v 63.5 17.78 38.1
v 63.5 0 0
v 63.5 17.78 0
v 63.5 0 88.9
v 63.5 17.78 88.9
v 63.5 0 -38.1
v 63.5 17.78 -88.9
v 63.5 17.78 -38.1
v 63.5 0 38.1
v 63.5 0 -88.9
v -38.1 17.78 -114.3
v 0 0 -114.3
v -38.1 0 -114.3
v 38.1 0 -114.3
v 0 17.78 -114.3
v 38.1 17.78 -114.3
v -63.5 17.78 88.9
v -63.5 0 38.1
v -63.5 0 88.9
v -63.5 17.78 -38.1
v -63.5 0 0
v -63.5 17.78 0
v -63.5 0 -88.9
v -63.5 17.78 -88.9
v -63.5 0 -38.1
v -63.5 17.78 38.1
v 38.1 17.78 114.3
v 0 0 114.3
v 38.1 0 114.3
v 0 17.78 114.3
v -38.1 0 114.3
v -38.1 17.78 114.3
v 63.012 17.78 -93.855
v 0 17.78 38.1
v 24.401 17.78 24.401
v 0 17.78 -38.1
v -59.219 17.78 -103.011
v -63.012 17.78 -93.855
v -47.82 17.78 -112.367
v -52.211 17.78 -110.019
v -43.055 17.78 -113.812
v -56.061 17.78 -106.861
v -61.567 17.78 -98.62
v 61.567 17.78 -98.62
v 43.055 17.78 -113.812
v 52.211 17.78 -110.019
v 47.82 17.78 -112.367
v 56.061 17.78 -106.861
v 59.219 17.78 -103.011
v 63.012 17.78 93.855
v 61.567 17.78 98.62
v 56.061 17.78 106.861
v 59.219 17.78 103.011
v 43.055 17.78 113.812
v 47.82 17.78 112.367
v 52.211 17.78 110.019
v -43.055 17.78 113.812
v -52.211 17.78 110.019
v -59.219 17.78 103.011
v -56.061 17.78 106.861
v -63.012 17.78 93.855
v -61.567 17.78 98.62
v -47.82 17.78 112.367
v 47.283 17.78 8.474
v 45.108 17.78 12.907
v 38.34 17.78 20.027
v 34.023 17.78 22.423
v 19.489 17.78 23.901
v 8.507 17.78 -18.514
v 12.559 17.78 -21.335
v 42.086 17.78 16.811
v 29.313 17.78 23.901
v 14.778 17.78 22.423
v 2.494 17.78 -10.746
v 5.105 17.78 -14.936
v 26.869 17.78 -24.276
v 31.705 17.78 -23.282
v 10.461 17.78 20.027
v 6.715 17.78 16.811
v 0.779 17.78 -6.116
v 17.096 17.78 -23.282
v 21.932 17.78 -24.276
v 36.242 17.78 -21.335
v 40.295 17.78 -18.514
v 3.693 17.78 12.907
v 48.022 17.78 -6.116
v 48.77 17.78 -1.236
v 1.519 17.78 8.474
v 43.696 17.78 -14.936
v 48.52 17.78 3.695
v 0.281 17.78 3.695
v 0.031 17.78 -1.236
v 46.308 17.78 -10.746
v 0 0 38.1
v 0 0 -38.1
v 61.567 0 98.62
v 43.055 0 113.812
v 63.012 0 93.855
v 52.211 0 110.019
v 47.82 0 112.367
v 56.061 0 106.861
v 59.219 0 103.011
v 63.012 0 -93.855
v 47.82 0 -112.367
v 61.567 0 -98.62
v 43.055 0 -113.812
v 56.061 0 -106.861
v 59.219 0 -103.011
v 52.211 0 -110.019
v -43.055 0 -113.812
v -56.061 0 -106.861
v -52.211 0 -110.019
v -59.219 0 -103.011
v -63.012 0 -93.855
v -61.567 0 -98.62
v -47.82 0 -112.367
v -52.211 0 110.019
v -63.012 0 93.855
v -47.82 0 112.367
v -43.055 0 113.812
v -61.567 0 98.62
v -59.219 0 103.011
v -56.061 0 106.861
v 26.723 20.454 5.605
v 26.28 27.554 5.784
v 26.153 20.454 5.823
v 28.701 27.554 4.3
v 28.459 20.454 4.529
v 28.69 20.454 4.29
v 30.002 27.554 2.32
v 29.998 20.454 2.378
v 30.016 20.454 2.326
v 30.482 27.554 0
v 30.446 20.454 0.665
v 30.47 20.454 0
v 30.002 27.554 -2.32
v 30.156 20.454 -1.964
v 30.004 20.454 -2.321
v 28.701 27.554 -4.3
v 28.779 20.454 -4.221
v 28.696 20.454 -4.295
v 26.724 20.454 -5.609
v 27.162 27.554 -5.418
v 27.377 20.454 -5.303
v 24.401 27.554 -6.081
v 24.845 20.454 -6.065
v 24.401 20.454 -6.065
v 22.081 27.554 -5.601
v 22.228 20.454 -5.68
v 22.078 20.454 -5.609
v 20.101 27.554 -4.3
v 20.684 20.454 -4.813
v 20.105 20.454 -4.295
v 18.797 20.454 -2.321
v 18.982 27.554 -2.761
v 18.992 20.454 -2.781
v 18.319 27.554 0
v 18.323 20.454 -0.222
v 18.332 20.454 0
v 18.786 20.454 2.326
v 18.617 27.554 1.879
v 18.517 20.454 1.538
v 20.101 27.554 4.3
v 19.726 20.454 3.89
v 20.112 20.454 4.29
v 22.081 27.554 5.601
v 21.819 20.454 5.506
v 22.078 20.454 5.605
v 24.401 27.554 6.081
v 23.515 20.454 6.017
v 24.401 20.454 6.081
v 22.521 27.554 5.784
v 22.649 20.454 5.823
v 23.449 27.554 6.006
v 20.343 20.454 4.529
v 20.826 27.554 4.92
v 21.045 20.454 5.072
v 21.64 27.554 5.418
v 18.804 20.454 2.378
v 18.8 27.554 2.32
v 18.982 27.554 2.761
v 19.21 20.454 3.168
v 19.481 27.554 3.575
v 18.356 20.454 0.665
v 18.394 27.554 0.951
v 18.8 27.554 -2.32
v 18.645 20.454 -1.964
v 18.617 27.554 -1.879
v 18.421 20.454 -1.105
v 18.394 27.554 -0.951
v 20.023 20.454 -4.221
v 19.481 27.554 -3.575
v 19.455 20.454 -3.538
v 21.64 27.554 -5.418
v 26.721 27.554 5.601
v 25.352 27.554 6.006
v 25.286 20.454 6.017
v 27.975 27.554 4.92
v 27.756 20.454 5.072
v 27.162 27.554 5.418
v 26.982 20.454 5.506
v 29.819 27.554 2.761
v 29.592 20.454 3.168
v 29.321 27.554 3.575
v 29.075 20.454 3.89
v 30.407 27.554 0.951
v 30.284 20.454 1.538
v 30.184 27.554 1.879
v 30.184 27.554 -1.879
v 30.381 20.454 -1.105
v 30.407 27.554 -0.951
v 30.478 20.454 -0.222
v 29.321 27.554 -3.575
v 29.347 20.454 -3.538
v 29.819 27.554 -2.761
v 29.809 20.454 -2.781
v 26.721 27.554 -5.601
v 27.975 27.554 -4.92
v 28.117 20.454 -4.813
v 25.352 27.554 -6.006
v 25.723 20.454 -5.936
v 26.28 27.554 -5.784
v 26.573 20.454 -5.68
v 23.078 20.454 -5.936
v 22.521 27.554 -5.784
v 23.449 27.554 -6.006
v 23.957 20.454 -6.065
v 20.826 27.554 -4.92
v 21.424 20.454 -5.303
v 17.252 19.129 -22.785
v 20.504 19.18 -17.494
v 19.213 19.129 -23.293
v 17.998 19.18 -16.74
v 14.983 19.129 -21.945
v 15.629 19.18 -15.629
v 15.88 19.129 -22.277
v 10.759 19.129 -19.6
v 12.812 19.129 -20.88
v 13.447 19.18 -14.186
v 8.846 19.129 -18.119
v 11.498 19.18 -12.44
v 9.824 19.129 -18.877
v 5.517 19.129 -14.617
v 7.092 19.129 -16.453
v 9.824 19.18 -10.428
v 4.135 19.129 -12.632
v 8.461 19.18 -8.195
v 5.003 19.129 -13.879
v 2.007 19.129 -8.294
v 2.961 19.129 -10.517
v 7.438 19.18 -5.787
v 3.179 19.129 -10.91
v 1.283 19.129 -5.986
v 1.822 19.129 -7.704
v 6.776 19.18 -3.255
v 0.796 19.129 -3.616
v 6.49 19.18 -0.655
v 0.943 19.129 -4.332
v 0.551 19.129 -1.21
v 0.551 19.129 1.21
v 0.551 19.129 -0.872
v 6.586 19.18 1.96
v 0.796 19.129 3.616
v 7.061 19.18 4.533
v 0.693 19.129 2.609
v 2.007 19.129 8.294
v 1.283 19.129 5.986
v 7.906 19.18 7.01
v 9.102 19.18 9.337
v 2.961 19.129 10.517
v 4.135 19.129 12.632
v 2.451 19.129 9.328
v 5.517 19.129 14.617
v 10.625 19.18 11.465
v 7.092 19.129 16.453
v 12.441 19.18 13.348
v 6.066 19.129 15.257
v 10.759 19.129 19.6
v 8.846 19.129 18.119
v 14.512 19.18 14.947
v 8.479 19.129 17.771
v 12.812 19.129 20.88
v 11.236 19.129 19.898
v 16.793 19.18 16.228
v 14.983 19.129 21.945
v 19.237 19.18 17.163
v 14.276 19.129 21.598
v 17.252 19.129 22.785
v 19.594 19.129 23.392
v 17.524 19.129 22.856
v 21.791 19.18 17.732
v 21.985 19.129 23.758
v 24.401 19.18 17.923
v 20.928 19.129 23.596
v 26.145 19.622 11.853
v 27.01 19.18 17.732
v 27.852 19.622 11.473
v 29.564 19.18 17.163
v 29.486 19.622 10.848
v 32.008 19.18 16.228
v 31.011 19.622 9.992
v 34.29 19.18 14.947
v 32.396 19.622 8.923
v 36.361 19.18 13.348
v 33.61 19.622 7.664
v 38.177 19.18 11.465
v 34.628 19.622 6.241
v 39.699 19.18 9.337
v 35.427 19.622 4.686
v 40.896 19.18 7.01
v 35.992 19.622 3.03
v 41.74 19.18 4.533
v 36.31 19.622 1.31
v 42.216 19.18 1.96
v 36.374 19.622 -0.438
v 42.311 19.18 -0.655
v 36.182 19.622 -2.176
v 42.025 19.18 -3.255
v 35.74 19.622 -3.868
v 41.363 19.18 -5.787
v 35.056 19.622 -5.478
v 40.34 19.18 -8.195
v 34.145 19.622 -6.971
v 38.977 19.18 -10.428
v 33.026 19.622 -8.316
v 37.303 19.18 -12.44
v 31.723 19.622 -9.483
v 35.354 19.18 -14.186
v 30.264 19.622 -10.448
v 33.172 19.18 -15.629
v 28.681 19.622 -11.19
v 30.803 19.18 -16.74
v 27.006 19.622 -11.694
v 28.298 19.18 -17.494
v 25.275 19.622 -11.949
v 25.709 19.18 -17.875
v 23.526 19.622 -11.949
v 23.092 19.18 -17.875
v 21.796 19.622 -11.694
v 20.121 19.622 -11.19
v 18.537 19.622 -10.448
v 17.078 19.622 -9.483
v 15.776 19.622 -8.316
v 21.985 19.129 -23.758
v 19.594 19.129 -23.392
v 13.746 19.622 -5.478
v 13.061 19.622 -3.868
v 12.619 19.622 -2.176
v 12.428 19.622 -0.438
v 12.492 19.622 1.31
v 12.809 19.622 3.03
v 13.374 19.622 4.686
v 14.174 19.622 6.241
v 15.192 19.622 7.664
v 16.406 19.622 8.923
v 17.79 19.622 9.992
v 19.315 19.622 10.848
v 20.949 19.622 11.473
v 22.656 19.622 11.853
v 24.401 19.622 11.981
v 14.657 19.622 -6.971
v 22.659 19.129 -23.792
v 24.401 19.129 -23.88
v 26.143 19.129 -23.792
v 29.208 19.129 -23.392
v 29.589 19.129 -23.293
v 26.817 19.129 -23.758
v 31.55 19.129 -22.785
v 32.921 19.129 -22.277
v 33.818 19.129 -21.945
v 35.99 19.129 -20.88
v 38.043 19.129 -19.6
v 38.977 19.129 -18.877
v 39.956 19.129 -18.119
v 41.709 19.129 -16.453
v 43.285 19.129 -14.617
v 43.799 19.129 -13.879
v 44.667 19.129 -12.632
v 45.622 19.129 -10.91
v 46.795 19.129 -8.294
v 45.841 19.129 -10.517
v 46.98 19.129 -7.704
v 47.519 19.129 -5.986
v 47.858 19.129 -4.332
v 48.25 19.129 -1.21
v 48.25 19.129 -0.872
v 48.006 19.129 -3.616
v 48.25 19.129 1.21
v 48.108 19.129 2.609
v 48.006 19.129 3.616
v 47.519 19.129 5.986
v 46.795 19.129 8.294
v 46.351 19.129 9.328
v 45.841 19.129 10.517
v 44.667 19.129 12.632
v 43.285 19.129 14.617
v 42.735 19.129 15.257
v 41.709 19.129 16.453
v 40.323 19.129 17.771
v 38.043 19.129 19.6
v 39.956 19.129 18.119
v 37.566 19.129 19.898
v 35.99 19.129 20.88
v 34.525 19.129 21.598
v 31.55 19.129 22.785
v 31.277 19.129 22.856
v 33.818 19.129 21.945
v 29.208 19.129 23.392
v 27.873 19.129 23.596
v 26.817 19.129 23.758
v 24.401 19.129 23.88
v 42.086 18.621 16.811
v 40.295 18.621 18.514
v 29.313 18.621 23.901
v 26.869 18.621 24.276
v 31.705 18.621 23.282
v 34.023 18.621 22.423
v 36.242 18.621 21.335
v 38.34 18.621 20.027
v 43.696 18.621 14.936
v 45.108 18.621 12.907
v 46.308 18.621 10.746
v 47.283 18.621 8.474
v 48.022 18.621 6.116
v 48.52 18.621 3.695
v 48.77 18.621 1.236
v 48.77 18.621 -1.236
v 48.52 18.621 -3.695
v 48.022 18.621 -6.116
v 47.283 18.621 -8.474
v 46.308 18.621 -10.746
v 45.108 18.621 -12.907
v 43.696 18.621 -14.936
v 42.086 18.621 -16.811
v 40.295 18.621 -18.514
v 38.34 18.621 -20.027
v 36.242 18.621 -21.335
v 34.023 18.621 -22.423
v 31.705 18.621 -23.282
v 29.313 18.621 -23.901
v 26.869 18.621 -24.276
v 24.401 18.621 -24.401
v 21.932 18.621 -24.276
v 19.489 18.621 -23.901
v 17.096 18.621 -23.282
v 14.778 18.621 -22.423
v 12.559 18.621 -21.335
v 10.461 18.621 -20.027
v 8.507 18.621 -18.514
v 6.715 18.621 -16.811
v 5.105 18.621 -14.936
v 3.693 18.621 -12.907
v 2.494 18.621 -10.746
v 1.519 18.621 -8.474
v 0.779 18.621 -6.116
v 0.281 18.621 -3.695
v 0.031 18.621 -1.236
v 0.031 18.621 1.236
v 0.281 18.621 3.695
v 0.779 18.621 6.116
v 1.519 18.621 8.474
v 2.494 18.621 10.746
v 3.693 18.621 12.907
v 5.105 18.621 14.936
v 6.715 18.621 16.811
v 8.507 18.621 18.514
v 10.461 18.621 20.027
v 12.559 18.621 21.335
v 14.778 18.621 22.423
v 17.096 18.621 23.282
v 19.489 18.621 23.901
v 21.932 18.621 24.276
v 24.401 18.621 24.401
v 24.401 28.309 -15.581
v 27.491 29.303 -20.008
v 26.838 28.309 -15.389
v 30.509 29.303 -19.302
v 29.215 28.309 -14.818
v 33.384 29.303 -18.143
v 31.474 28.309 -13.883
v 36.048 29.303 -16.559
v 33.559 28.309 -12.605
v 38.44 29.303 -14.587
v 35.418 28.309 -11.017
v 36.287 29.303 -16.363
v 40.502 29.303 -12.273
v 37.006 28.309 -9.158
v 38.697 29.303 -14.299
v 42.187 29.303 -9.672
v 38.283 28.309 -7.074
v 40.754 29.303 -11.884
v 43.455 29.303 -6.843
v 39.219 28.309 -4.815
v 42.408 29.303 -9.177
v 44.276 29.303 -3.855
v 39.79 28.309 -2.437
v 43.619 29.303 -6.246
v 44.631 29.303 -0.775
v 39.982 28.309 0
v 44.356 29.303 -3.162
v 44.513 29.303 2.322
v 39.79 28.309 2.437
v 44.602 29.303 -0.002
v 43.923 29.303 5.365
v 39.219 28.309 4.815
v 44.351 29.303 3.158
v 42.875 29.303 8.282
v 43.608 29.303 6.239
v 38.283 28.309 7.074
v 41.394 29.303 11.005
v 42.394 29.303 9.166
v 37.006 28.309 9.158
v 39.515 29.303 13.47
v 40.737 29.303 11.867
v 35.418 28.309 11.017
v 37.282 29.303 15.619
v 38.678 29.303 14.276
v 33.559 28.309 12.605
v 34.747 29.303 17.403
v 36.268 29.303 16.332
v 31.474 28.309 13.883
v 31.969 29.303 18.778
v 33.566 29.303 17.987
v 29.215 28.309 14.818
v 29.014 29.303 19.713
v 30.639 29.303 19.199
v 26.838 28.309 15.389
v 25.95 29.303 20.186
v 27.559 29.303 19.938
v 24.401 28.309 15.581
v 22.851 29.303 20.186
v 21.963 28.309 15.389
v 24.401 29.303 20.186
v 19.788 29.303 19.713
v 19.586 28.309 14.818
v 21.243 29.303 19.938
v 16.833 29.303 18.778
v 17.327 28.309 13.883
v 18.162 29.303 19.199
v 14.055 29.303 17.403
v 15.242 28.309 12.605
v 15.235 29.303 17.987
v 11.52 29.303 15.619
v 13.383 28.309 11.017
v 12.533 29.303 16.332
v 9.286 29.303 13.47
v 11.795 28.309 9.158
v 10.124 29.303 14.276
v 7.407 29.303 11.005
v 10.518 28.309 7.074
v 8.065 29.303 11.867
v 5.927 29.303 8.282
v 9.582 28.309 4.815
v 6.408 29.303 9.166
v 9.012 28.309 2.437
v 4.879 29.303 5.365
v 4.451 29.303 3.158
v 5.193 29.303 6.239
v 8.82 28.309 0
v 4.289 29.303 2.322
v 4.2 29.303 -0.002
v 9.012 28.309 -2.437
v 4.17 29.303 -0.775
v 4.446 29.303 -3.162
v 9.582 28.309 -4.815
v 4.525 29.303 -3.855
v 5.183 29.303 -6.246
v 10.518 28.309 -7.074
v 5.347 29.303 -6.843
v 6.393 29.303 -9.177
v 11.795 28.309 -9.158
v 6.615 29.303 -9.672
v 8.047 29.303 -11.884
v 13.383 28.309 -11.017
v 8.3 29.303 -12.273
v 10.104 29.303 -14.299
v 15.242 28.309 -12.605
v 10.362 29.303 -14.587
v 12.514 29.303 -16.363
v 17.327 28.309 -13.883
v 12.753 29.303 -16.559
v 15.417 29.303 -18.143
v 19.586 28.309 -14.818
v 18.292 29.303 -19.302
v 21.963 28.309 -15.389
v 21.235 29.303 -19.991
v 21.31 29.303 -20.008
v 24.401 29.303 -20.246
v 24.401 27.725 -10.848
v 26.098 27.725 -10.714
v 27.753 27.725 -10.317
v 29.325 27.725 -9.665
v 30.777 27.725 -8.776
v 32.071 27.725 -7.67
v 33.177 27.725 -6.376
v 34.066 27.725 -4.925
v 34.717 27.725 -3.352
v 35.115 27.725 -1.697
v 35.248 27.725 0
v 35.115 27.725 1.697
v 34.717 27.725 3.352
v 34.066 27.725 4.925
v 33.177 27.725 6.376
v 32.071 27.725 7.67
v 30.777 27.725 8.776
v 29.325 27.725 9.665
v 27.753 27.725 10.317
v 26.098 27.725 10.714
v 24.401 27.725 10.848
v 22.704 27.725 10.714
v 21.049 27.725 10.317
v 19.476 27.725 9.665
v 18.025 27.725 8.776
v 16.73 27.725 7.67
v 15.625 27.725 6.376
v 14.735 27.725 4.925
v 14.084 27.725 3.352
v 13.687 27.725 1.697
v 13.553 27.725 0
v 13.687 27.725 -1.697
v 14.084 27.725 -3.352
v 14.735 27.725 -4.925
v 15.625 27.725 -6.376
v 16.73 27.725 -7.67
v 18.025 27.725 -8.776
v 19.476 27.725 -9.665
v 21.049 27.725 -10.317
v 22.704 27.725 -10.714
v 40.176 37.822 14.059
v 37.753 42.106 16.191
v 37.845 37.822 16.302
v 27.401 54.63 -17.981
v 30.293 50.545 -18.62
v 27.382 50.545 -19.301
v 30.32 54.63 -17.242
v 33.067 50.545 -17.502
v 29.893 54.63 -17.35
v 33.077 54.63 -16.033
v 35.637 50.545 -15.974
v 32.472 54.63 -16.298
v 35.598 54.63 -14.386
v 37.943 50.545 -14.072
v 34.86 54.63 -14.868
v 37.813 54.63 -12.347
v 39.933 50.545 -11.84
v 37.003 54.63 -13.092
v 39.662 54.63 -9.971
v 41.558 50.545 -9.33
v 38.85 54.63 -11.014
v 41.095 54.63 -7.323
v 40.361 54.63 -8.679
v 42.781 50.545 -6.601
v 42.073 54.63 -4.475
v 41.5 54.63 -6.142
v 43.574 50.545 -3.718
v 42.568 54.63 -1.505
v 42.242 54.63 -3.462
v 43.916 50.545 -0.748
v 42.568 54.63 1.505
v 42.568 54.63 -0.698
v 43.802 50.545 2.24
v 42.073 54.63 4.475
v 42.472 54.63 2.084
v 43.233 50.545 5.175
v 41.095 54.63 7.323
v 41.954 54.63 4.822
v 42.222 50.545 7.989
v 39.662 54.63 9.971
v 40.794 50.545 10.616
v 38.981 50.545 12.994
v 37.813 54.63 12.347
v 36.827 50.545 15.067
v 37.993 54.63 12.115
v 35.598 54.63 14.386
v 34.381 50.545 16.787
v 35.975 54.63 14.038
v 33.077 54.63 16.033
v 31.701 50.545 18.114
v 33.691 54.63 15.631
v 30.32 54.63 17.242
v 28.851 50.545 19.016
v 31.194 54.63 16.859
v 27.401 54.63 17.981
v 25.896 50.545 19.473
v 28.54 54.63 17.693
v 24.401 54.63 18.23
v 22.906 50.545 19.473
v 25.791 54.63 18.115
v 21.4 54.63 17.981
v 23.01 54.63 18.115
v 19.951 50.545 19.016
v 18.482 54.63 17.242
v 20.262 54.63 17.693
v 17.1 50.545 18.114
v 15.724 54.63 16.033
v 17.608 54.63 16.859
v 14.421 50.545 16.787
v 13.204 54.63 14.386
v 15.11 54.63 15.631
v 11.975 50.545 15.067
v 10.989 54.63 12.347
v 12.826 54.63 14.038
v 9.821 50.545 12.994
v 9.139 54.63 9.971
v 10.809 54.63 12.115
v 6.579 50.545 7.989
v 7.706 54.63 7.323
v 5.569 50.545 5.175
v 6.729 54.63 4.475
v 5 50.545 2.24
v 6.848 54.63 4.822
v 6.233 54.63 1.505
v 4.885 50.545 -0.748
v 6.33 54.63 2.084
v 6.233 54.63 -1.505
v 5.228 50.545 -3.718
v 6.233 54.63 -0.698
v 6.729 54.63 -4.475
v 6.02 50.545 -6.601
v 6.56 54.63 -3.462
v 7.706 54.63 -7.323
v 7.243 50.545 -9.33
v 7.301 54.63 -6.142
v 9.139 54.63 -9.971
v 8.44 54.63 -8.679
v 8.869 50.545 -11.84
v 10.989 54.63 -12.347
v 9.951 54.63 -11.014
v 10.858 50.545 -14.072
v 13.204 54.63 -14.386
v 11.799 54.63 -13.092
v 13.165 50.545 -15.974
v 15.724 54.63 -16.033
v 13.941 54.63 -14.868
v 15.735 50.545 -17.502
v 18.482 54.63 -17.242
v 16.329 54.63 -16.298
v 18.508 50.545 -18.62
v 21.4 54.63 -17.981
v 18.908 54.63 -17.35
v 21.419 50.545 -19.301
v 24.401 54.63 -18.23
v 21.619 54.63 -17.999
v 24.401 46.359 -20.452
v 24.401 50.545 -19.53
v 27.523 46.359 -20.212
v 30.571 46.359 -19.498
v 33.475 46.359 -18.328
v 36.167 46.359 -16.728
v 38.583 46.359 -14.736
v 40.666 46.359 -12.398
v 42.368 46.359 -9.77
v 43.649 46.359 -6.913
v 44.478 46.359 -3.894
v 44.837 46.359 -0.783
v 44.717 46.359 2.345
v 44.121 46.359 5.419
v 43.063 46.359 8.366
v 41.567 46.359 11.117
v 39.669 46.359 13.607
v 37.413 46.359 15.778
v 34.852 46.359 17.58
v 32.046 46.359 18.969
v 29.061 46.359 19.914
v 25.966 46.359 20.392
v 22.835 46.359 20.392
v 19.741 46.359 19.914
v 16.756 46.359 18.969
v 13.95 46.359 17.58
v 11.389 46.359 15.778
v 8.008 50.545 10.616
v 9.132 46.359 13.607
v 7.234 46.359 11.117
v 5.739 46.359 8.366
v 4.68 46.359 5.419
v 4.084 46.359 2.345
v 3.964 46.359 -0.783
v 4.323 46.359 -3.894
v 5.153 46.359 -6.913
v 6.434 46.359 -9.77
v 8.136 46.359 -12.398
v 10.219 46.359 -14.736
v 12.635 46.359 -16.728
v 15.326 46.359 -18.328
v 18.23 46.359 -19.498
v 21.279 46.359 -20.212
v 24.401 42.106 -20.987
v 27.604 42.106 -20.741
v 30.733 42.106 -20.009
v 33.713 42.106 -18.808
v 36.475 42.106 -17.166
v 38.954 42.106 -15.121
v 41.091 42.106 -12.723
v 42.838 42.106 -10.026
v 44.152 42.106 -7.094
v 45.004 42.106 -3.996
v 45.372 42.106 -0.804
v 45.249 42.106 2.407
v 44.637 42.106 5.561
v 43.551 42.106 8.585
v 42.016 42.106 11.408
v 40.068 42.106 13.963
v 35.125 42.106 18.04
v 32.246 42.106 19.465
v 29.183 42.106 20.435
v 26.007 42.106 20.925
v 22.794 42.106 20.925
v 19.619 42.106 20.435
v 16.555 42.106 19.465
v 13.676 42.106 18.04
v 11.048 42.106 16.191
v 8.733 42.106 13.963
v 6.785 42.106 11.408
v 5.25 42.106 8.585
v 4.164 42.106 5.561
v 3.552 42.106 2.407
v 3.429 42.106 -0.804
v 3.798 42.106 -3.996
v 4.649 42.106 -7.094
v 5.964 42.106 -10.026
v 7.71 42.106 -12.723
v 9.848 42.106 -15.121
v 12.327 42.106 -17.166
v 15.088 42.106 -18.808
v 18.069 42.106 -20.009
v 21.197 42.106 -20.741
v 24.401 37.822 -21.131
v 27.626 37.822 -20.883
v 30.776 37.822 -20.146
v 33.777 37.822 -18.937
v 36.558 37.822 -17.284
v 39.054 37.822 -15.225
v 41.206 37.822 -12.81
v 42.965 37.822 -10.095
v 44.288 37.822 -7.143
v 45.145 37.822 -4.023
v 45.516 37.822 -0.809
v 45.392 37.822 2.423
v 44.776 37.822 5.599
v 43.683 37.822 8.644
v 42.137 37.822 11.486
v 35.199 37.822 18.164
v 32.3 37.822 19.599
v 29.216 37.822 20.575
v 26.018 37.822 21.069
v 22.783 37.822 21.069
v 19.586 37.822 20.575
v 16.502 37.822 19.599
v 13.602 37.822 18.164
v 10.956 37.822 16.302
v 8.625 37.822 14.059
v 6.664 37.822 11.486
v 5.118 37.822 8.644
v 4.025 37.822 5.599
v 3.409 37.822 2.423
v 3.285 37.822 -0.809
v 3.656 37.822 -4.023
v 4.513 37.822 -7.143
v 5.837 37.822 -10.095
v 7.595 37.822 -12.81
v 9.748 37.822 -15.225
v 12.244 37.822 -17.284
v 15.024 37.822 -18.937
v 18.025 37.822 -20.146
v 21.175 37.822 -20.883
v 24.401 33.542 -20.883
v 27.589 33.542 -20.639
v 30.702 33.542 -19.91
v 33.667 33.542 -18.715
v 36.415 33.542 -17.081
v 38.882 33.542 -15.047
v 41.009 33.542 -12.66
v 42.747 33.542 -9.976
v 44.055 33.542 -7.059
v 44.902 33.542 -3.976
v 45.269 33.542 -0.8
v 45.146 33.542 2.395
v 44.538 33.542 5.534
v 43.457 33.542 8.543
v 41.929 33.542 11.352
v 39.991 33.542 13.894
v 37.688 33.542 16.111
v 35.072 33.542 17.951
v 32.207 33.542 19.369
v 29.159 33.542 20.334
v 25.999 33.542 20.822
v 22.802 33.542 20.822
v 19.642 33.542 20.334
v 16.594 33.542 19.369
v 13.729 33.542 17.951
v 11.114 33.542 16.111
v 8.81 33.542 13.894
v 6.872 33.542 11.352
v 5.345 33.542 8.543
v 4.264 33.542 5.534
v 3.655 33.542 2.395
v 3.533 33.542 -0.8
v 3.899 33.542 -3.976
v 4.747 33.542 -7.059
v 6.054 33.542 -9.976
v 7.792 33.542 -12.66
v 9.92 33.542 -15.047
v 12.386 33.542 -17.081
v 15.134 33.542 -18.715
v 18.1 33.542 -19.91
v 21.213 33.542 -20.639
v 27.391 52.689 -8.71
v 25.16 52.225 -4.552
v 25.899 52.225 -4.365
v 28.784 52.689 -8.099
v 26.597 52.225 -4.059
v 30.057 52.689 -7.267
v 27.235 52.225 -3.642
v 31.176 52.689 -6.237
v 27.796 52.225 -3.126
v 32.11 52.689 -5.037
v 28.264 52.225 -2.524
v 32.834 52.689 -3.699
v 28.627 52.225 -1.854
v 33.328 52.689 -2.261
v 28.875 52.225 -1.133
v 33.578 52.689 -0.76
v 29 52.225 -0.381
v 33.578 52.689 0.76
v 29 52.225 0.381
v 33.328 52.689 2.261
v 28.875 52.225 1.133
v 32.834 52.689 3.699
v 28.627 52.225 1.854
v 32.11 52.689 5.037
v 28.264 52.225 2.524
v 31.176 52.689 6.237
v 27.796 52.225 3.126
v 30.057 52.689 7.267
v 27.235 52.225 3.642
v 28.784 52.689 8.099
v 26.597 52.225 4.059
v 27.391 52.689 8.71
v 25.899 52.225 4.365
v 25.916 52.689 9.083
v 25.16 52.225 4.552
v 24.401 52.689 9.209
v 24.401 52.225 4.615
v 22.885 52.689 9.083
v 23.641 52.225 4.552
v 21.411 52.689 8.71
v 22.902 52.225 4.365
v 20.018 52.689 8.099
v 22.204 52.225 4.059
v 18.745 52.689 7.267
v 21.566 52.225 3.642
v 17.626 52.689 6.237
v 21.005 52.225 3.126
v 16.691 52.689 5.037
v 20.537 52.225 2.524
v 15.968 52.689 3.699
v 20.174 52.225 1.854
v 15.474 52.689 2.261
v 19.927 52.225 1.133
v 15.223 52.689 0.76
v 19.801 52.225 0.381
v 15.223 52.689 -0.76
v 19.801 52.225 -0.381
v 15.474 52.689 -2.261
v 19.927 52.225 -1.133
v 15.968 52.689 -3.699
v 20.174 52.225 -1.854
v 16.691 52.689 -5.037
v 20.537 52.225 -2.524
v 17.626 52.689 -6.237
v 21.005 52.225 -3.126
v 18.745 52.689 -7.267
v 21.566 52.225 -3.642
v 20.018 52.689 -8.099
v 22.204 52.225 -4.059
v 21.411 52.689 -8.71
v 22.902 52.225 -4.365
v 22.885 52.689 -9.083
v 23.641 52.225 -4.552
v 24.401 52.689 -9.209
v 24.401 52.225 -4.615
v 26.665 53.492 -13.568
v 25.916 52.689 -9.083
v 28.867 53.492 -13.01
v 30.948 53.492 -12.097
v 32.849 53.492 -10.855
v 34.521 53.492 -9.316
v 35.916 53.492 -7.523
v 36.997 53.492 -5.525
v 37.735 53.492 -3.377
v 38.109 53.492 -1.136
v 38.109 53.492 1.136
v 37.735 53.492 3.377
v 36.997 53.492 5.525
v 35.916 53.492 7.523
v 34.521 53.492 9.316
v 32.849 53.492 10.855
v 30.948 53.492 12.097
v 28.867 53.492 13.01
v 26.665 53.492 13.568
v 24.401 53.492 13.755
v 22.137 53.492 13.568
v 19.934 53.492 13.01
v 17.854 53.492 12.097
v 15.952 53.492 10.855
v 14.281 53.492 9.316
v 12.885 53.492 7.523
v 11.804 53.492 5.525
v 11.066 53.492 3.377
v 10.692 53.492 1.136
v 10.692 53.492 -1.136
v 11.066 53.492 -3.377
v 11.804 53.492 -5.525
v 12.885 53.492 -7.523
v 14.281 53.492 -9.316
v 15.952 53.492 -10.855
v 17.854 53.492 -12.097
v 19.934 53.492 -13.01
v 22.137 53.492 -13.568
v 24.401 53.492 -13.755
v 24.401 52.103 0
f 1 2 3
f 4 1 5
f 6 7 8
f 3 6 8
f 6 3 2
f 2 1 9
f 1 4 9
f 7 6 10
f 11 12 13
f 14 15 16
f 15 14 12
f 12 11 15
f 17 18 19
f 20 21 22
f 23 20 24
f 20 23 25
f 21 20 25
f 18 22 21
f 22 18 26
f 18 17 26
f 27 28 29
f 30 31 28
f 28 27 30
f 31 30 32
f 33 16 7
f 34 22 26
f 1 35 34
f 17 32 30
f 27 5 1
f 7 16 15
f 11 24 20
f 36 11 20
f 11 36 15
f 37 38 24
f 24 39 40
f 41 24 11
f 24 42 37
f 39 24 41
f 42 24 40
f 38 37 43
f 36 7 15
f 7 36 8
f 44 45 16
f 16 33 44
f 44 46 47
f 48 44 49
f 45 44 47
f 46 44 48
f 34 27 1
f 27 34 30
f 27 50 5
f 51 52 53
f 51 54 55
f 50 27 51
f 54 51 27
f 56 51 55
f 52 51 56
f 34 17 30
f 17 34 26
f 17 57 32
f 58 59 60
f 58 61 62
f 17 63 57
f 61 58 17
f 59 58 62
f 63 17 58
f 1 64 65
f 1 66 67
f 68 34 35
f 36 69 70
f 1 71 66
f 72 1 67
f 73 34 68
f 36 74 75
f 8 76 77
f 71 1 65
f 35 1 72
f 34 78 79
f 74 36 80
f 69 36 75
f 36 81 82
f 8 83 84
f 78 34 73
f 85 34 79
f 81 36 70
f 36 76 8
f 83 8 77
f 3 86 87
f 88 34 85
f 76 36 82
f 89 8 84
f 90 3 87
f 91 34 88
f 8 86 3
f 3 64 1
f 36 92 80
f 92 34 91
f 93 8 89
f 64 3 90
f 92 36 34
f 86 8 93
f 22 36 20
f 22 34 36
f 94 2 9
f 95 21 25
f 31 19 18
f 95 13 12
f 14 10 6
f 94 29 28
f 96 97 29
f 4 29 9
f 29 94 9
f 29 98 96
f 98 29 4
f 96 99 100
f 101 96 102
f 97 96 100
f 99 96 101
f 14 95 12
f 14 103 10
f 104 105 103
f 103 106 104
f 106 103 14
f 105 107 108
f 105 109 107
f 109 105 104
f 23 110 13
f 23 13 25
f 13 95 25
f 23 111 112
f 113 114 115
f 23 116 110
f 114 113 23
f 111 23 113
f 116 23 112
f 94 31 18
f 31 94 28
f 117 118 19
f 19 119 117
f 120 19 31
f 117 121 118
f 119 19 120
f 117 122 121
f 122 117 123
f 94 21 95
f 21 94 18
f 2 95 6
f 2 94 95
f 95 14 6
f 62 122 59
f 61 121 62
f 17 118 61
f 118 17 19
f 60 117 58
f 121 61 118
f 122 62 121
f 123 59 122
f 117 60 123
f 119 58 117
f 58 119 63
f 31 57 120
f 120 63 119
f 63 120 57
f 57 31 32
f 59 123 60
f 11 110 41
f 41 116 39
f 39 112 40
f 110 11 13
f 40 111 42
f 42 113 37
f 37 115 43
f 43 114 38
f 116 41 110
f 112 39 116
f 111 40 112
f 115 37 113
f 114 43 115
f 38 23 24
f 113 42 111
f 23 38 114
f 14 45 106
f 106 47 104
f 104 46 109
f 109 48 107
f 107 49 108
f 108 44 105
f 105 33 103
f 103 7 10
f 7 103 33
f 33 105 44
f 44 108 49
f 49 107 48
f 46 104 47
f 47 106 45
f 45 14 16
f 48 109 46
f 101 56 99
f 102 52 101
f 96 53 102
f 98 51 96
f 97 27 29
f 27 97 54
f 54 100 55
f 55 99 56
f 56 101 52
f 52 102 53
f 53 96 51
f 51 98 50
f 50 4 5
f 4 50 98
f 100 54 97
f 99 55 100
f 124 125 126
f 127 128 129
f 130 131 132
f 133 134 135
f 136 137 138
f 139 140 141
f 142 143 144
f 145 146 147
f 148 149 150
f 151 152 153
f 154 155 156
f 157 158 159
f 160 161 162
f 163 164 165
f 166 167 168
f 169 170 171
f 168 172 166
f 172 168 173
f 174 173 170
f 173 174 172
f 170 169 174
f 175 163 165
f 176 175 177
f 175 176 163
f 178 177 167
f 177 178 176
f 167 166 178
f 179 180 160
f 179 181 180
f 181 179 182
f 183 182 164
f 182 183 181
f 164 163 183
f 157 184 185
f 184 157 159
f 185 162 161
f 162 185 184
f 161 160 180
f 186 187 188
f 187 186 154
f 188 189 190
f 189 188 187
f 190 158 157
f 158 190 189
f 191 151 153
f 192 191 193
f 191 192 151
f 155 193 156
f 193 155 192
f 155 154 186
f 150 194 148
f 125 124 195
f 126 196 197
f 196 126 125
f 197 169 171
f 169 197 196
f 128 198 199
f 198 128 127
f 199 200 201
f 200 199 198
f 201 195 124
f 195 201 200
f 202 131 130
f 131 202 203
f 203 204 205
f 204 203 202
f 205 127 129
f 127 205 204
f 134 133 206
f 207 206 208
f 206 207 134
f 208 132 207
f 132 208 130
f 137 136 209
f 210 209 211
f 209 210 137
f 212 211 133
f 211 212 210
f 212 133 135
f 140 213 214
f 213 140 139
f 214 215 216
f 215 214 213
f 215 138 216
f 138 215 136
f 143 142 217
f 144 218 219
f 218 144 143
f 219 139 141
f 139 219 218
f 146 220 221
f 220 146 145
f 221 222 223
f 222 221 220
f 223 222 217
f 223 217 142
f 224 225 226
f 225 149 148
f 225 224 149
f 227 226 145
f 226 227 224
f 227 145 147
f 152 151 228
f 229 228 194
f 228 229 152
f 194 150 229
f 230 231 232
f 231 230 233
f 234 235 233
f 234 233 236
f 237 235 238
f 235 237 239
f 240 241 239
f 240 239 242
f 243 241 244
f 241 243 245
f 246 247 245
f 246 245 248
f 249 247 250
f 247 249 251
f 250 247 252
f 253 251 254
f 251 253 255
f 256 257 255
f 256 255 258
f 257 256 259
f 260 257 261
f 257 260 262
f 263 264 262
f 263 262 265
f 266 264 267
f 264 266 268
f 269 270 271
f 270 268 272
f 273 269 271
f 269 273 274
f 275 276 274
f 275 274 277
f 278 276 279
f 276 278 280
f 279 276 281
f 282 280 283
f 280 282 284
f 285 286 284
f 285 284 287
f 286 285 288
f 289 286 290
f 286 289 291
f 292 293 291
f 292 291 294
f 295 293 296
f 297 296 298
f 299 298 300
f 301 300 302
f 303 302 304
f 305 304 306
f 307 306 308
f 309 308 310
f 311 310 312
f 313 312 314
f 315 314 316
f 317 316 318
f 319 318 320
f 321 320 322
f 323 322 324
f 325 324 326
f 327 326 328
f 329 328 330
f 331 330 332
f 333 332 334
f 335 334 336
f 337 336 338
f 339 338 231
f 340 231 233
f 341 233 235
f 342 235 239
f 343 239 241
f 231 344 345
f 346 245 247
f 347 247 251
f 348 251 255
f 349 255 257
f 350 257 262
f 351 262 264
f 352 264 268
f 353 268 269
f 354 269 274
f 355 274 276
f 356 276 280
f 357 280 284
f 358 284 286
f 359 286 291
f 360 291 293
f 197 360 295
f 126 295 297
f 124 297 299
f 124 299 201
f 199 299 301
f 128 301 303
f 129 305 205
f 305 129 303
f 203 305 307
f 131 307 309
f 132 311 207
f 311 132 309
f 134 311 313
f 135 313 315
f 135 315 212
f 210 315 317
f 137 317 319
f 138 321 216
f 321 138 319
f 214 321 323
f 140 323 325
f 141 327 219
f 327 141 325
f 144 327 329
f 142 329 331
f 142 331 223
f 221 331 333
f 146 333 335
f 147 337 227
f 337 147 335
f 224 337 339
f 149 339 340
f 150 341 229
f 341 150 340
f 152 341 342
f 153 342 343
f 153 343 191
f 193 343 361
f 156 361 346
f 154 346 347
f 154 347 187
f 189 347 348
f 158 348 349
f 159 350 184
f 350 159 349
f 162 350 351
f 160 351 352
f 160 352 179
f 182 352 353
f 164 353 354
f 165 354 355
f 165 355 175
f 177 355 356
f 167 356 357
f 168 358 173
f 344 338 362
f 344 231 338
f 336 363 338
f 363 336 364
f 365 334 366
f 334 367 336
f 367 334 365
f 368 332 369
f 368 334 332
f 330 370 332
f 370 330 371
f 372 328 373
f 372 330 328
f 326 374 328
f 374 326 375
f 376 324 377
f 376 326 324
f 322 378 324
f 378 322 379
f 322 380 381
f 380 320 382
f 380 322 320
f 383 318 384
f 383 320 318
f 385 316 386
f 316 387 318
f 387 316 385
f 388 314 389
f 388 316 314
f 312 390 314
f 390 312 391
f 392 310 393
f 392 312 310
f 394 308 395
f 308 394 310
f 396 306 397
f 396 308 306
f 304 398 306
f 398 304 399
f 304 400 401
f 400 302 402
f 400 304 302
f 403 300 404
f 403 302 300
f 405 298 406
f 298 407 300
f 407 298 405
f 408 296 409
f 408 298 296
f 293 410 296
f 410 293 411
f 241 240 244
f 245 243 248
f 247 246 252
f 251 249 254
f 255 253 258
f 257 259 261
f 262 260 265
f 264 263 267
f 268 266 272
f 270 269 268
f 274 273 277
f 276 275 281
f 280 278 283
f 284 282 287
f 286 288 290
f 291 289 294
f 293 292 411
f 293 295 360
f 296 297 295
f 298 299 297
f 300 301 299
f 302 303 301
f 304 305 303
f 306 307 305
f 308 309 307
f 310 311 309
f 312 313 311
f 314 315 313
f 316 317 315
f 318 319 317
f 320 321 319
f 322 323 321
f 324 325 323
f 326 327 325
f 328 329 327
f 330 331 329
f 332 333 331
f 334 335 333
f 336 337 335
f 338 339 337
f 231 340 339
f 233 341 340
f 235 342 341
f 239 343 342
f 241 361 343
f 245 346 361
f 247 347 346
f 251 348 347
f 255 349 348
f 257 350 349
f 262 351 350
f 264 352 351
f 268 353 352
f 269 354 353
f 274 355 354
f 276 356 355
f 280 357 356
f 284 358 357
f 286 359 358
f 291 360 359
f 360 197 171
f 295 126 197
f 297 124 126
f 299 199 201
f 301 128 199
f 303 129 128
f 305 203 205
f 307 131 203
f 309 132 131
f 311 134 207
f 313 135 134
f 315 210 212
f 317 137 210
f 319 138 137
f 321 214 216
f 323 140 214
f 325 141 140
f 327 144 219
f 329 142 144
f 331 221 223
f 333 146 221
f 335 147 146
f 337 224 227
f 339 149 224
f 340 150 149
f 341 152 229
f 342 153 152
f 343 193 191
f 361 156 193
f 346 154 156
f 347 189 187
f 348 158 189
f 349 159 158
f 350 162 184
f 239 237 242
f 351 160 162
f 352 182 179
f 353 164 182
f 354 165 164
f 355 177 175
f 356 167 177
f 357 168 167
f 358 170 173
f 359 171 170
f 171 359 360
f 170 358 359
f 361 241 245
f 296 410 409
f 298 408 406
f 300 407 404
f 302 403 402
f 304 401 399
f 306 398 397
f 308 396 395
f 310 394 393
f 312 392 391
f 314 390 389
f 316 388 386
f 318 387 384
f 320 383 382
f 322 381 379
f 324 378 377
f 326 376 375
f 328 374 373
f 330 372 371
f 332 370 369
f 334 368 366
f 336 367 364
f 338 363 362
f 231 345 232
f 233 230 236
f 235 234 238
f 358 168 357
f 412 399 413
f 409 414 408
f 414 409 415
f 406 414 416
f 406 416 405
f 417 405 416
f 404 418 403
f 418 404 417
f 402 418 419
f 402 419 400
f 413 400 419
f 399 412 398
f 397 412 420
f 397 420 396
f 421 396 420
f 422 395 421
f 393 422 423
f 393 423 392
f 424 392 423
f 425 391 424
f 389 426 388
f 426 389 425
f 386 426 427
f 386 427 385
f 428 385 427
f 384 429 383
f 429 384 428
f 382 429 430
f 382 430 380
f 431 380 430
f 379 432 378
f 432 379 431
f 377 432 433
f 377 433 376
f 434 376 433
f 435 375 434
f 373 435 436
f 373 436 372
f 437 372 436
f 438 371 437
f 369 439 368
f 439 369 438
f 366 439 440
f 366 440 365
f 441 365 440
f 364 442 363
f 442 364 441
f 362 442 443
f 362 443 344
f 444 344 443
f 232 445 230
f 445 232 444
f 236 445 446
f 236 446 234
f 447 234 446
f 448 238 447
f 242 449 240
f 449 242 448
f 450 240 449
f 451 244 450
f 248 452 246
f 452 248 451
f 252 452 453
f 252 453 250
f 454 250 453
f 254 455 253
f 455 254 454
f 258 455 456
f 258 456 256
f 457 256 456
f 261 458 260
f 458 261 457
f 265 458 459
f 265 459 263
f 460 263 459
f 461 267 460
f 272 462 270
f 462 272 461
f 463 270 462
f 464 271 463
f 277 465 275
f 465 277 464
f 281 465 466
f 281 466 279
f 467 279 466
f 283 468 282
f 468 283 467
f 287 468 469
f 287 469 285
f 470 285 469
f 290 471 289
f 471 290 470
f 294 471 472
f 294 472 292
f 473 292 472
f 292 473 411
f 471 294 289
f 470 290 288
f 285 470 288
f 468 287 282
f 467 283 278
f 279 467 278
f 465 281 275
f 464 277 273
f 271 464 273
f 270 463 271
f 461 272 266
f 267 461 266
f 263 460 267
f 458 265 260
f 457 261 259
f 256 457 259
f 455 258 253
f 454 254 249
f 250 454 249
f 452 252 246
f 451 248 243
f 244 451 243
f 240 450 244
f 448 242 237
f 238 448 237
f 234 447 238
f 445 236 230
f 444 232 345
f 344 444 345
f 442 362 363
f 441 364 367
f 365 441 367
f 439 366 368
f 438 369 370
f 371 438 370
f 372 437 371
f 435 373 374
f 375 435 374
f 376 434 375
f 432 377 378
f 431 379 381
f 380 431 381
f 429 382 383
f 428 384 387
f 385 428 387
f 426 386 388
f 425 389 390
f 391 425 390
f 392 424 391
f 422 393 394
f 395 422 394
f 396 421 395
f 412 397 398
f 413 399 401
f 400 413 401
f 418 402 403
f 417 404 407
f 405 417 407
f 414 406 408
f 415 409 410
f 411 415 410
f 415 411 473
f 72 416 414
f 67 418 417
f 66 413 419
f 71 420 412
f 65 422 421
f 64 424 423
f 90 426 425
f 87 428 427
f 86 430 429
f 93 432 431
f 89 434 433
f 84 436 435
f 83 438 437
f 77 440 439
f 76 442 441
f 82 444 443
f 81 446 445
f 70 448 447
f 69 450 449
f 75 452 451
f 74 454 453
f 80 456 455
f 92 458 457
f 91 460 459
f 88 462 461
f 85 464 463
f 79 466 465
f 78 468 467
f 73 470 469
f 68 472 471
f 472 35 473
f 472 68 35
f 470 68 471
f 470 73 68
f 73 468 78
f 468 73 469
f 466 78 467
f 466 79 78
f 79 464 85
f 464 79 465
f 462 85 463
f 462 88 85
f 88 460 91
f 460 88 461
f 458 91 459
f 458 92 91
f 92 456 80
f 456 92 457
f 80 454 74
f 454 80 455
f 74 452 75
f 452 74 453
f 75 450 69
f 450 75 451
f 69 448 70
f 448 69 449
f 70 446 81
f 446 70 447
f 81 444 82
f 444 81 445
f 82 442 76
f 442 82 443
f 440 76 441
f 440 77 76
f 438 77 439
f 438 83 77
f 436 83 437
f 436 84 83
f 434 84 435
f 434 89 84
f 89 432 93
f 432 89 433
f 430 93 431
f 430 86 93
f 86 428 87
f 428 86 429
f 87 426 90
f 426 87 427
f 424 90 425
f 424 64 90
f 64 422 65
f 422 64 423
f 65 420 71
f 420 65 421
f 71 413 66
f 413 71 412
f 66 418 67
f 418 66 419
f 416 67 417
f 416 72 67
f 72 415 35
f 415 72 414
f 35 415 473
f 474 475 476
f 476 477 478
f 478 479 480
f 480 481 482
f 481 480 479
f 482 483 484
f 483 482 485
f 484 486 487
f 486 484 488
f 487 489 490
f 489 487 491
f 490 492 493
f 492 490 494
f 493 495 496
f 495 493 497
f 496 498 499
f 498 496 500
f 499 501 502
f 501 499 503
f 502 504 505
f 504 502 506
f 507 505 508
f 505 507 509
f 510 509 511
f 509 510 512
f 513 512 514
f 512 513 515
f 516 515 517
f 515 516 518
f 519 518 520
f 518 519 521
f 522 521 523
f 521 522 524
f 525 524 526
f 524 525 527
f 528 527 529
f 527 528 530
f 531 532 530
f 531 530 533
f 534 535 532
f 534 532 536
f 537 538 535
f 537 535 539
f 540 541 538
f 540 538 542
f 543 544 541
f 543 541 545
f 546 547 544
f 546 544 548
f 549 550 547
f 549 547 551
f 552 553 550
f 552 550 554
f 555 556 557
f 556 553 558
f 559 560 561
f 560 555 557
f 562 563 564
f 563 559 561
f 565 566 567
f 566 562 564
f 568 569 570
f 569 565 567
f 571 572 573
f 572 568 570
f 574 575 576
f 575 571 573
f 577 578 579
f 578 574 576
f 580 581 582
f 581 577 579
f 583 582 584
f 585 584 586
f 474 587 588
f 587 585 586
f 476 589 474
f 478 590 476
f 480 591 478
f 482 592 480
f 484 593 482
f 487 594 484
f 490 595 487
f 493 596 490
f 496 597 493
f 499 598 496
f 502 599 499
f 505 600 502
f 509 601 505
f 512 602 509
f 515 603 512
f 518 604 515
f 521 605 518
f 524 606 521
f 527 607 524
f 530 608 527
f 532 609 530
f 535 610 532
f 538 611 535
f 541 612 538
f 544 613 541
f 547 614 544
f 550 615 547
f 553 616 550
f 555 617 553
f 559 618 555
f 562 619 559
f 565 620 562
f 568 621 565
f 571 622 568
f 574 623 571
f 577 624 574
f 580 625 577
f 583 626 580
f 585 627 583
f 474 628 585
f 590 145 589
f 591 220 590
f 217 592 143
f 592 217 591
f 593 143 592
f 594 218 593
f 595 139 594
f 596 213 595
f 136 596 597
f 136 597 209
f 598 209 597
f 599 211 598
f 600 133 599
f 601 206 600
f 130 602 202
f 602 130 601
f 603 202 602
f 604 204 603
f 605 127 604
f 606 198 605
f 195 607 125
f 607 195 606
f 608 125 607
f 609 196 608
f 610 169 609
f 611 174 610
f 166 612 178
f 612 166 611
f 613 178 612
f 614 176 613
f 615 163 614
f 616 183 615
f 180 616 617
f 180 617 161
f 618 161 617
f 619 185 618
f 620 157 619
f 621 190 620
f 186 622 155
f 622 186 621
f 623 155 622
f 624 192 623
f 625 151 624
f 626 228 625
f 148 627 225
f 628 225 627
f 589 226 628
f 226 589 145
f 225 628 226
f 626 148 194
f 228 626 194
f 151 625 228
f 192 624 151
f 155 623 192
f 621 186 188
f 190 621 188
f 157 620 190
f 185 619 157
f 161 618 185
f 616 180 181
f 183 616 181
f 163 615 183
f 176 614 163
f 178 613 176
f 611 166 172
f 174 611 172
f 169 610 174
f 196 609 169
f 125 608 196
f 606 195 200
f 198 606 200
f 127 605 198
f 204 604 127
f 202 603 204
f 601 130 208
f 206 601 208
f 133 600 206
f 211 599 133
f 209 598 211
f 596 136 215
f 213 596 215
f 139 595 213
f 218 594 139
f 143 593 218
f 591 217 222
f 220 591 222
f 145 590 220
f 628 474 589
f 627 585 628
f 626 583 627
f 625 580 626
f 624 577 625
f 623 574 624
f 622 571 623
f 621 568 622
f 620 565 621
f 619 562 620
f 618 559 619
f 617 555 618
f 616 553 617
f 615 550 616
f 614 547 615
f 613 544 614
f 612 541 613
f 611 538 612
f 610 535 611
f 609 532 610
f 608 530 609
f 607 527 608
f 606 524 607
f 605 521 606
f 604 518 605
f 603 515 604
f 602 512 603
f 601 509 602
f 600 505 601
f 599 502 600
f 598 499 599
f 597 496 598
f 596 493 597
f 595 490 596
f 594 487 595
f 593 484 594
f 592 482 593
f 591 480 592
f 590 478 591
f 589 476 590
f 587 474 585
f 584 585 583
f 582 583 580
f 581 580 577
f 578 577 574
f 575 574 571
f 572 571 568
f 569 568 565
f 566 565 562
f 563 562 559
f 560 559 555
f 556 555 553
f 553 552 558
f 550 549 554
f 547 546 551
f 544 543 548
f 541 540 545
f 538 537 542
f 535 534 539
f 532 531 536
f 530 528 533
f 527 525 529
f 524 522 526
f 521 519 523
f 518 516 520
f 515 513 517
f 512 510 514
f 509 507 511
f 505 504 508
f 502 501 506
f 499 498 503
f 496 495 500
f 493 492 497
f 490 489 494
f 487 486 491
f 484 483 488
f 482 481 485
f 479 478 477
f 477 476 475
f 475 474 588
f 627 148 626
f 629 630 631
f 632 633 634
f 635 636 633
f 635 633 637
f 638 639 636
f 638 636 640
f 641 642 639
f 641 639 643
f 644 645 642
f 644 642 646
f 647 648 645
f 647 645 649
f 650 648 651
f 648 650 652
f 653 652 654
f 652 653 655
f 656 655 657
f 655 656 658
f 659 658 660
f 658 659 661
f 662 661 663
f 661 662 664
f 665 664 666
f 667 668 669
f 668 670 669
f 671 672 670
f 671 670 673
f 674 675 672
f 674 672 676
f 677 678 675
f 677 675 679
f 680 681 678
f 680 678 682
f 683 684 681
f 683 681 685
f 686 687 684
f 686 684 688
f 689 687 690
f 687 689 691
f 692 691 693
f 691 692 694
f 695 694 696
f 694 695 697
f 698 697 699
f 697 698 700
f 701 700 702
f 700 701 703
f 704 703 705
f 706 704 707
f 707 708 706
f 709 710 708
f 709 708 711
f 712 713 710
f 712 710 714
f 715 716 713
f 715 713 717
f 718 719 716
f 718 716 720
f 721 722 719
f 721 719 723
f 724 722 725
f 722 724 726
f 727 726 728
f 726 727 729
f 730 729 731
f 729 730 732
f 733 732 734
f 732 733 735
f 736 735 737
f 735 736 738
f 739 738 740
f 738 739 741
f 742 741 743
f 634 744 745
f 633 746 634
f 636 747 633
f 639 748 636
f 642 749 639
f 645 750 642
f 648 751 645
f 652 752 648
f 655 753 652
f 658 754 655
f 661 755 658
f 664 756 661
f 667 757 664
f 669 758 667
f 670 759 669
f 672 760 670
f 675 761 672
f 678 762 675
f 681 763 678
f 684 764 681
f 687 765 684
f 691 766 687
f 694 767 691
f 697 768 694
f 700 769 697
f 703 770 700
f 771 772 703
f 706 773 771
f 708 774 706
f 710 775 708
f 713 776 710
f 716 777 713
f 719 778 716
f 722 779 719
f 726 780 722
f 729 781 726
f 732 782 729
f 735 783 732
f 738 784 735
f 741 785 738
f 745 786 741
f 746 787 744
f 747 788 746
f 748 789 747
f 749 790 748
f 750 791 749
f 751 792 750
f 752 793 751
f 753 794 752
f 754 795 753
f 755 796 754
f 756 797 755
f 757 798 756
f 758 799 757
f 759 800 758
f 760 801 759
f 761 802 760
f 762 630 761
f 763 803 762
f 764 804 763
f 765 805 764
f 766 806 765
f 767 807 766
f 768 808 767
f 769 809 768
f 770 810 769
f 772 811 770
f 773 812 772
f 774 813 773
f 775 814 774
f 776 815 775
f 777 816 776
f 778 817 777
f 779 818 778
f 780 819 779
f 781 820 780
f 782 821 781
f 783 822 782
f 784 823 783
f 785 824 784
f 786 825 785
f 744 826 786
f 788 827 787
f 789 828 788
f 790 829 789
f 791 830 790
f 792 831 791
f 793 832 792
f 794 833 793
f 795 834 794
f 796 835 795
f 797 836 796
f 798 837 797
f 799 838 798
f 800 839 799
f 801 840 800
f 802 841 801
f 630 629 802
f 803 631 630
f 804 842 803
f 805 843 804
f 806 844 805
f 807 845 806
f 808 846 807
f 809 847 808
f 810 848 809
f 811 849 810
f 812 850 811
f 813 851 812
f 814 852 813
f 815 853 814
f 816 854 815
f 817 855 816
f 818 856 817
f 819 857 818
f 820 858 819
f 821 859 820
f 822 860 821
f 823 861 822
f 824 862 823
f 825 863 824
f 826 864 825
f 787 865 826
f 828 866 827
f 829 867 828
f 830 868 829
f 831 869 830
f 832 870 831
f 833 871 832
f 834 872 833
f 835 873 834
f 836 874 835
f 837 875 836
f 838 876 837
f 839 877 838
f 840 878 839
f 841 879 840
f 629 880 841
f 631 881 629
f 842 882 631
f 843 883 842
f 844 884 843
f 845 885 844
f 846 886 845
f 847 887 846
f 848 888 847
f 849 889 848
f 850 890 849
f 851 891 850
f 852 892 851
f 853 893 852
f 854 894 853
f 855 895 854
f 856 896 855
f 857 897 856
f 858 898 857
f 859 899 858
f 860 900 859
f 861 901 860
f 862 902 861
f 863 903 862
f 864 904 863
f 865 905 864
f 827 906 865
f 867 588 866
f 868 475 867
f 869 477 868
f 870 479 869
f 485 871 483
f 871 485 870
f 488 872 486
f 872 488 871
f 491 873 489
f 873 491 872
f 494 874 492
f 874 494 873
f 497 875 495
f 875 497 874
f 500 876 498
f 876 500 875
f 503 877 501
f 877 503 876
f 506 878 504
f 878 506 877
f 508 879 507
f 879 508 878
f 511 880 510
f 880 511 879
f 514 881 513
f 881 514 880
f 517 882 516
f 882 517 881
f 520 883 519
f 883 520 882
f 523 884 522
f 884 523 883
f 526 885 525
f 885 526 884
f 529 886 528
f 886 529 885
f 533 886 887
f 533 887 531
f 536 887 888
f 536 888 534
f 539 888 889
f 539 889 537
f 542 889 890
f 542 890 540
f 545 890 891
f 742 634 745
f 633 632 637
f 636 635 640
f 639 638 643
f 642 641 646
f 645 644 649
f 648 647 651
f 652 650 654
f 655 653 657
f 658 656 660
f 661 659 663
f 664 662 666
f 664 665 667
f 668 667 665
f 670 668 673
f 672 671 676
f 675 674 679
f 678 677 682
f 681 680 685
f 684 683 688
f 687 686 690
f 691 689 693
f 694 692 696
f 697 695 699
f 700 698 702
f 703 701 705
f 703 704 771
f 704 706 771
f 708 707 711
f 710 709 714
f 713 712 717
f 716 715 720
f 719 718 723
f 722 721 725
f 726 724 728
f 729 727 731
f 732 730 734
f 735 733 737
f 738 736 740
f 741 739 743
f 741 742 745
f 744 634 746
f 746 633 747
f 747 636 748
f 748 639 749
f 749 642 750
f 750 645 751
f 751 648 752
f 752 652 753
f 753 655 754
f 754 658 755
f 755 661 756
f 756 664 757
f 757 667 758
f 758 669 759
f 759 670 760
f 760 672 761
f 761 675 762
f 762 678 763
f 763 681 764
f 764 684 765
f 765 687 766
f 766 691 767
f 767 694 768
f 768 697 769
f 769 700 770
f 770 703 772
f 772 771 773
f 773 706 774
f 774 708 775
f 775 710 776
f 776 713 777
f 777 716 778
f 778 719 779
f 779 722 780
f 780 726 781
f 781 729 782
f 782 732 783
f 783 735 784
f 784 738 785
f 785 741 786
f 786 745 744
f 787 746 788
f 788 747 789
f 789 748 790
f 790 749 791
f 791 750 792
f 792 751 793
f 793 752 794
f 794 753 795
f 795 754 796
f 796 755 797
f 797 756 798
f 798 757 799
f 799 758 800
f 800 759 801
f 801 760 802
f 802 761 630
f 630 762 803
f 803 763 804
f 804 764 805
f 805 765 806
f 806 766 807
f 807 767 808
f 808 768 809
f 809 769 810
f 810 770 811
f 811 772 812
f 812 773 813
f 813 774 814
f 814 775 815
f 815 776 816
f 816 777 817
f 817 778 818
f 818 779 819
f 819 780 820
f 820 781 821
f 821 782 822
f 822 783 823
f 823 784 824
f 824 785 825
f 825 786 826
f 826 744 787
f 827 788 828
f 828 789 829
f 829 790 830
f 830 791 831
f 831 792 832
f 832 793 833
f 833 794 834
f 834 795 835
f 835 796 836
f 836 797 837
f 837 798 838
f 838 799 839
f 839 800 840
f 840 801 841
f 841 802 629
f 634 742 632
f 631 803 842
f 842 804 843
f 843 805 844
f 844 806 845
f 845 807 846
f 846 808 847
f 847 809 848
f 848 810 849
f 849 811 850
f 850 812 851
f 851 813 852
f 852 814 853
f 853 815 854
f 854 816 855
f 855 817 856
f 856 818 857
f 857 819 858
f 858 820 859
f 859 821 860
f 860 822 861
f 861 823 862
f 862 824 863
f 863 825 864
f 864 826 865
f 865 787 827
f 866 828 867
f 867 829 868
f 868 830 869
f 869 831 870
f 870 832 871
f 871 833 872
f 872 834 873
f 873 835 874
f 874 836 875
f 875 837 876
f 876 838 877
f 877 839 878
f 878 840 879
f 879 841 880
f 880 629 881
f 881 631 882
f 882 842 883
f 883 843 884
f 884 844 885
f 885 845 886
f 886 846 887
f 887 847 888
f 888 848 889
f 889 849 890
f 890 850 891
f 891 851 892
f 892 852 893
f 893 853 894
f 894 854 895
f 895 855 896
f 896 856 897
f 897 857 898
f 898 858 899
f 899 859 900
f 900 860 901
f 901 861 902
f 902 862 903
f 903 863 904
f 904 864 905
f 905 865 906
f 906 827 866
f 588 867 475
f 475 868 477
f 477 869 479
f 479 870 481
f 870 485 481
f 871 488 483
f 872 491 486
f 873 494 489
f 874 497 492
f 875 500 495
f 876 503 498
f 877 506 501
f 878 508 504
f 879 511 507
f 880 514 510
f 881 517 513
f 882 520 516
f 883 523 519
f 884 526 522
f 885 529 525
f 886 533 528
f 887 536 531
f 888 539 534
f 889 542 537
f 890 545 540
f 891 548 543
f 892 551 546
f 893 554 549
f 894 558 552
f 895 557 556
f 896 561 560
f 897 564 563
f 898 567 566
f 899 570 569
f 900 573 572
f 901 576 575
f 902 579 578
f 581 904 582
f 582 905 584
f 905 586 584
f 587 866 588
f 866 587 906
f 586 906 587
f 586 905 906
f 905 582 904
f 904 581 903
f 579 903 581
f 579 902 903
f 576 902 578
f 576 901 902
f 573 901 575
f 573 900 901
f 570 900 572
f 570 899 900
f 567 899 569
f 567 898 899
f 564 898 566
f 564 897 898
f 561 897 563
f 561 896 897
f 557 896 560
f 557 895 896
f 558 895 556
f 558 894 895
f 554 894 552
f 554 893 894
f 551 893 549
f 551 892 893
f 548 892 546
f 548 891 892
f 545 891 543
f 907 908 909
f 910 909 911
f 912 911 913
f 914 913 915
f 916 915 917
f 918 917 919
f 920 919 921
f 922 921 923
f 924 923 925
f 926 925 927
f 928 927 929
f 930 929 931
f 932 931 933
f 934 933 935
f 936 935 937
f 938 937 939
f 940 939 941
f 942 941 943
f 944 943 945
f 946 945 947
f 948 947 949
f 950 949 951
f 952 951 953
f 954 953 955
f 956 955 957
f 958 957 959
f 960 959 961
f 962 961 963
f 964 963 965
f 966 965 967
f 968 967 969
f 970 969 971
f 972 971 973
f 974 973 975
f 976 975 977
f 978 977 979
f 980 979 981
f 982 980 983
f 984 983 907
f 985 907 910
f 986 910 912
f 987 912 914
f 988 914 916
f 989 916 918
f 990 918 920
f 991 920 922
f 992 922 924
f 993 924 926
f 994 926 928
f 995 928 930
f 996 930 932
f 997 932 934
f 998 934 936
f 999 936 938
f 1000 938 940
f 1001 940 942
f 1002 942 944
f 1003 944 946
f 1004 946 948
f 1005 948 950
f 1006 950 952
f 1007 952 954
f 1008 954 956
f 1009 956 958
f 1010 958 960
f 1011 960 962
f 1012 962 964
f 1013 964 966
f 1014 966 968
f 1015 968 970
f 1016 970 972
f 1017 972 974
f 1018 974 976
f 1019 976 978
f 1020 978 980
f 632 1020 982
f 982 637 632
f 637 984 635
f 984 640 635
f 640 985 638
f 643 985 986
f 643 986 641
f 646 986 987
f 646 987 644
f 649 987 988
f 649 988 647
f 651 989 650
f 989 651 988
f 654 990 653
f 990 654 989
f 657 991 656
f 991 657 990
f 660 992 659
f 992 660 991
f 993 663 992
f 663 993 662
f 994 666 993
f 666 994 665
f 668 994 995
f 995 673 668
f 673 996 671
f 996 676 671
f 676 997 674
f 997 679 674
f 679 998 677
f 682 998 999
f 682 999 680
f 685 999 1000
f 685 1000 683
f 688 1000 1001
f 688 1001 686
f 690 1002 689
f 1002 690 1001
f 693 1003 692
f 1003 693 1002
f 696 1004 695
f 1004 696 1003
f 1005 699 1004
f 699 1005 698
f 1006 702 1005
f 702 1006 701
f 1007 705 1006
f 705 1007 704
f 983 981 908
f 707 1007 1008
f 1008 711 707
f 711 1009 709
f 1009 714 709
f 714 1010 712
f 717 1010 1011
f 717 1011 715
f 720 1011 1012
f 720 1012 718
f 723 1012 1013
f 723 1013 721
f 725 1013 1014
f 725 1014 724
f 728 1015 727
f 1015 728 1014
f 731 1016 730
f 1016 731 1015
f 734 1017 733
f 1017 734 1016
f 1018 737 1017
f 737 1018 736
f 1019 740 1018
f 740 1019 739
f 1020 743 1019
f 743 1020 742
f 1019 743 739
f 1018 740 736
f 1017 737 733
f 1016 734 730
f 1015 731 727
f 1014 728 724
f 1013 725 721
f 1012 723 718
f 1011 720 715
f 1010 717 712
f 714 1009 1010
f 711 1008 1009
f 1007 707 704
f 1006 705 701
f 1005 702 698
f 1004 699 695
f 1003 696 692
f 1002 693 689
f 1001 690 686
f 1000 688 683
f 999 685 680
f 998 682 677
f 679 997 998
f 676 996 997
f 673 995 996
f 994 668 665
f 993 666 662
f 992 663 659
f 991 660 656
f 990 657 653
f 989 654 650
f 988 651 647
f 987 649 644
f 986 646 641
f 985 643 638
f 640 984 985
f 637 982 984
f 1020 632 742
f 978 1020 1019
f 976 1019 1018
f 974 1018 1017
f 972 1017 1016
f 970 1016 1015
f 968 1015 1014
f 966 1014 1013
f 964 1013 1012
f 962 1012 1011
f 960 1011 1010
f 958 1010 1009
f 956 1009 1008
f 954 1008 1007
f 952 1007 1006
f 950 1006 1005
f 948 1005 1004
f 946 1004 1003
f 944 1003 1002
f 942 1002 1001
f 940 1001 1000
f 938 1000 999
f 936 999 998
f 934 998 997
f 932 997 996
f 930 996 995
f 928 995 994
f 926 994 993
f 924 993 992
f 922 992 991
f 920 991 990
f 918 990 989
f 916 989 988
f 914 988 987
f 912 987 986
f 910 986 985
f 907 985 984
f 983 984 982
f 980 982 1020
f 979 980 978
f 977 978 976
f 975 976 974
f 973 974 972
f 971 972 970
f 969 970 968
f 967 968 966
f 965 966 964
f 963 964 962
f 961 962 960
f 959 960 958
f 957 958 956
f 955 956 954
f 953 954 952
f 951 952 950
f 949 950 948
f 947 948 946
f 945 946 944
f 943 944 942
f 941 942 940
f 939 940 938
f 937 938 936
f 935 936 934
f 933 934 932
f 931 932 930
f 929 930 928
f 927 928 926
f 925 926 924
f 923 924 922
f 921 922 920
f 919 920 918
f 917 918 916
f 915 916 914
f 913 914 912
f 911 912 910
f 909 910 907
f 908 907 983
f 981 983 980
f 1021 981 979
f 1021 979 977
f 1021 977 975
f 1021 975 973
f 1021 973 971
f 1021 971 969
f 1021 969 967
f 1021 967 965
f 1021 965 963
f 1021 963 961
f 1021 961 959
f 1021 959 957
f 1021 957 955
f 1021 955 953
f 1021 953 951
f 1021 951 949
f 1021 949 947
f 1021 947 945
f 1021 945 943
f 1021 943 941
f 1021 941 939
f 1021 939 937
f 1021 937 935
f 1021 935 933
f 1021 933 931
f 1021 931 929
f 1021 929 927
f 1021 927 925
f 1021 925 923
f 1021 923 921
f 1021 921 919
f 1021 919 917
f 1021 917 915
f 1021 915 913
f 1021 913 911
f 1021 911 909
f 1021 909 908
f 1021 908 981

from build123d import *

# Parameters (mm, degrees)
SKETCH1_W           = 127
SKETCH1_H           = 228.6
BOSS_EXTRUDE1_DEPTH = 17.78
FILLET1_R           = 25.4


with BuildPart() as part:
    # Sketch1 → Boss-Extrude1 (new body)
    with BuildSketch(Plane(origin=(0, 0, 0), x_dir=(1, 0, 0), z_dir=(0, 1, 0))):
        Rectangle(SKETCH1_W, SKETCH1_H)
    extrude(amount=BOSS_EXTRUDE1_DEPTH)

    # Fillet1
    fillet1_edges = [part.edges().sort_by_distance(p)[0] for p in [
        (63.5, 8.89, 114.3),
        (-63.5, 8.89, 114.3),
        (-63.5, 8.89, -114.3),
        (63.5, 8.89, -114.3),
    ]]
    fillet(fillet1_edges, radius=FILLET1_R)

    # Sketch3 → Revolve1 (revolve)
    with BuildSketch(Plane.XY):
        with BuildLine():
            Line((24.400711068, 17.78), (0, 17.78))
            Line((0, 17.78), (0, 18.621092674))
            ThreePointArc((0, 18.621092674), (0.153192874, 18.984652715), (0.520377573, 19.12894186))
            ThreePointArc((0.520377573, 19.12894186), (9.452590015, 19.351960716), (18.319397174, 20.453726269))
            Line((18.319397174, 20.453726269), (18.319397174, 23.831447825))
            Line((18.319397174, 23.831447825), (18.319397174, 27.940464373))
            Line((18.319397174, 27.940464373), (24.400711068, 27.940464373))
            Line((24.400711068, 27.940464373), (24.400711068, 23.831447825))
            Line((24.400711068, 23.831447825), (24.400711068, 21.732479509))
            Line((24.400711068, 21.732479509), (24.400711068, 17.78))
        make_face()
    revolve(axis=Axis((24.400711068, 21.732479509, 0), (0, -1, 0)))

    # Sketch4 → Revolve2 (revolve)
    with BuildSketch(Plane.XY):
        with BuildLine():
            Line((24.400711068, 27.940464373), (24.400711068, 52.102517499))
            ThreePointArc((24.400711068, 52.102517499), (33.609505059, 52.688947823), (42.630480882, 54.630025491))
            ThreePointArc((42.630480882, 54.630025491), (45.38750409, 42.105790986), (44.646315408, 29.303124613))
            ThreePointArc((44.646315408, 29.303124613), (34.587150849, 27.67630429), (24.400711068, 27.940464373))
        make_face()
    revolve(axis=Axis((24.400711068, 27.940464373, 0), (0, 1, 0)))


solid = part.part
